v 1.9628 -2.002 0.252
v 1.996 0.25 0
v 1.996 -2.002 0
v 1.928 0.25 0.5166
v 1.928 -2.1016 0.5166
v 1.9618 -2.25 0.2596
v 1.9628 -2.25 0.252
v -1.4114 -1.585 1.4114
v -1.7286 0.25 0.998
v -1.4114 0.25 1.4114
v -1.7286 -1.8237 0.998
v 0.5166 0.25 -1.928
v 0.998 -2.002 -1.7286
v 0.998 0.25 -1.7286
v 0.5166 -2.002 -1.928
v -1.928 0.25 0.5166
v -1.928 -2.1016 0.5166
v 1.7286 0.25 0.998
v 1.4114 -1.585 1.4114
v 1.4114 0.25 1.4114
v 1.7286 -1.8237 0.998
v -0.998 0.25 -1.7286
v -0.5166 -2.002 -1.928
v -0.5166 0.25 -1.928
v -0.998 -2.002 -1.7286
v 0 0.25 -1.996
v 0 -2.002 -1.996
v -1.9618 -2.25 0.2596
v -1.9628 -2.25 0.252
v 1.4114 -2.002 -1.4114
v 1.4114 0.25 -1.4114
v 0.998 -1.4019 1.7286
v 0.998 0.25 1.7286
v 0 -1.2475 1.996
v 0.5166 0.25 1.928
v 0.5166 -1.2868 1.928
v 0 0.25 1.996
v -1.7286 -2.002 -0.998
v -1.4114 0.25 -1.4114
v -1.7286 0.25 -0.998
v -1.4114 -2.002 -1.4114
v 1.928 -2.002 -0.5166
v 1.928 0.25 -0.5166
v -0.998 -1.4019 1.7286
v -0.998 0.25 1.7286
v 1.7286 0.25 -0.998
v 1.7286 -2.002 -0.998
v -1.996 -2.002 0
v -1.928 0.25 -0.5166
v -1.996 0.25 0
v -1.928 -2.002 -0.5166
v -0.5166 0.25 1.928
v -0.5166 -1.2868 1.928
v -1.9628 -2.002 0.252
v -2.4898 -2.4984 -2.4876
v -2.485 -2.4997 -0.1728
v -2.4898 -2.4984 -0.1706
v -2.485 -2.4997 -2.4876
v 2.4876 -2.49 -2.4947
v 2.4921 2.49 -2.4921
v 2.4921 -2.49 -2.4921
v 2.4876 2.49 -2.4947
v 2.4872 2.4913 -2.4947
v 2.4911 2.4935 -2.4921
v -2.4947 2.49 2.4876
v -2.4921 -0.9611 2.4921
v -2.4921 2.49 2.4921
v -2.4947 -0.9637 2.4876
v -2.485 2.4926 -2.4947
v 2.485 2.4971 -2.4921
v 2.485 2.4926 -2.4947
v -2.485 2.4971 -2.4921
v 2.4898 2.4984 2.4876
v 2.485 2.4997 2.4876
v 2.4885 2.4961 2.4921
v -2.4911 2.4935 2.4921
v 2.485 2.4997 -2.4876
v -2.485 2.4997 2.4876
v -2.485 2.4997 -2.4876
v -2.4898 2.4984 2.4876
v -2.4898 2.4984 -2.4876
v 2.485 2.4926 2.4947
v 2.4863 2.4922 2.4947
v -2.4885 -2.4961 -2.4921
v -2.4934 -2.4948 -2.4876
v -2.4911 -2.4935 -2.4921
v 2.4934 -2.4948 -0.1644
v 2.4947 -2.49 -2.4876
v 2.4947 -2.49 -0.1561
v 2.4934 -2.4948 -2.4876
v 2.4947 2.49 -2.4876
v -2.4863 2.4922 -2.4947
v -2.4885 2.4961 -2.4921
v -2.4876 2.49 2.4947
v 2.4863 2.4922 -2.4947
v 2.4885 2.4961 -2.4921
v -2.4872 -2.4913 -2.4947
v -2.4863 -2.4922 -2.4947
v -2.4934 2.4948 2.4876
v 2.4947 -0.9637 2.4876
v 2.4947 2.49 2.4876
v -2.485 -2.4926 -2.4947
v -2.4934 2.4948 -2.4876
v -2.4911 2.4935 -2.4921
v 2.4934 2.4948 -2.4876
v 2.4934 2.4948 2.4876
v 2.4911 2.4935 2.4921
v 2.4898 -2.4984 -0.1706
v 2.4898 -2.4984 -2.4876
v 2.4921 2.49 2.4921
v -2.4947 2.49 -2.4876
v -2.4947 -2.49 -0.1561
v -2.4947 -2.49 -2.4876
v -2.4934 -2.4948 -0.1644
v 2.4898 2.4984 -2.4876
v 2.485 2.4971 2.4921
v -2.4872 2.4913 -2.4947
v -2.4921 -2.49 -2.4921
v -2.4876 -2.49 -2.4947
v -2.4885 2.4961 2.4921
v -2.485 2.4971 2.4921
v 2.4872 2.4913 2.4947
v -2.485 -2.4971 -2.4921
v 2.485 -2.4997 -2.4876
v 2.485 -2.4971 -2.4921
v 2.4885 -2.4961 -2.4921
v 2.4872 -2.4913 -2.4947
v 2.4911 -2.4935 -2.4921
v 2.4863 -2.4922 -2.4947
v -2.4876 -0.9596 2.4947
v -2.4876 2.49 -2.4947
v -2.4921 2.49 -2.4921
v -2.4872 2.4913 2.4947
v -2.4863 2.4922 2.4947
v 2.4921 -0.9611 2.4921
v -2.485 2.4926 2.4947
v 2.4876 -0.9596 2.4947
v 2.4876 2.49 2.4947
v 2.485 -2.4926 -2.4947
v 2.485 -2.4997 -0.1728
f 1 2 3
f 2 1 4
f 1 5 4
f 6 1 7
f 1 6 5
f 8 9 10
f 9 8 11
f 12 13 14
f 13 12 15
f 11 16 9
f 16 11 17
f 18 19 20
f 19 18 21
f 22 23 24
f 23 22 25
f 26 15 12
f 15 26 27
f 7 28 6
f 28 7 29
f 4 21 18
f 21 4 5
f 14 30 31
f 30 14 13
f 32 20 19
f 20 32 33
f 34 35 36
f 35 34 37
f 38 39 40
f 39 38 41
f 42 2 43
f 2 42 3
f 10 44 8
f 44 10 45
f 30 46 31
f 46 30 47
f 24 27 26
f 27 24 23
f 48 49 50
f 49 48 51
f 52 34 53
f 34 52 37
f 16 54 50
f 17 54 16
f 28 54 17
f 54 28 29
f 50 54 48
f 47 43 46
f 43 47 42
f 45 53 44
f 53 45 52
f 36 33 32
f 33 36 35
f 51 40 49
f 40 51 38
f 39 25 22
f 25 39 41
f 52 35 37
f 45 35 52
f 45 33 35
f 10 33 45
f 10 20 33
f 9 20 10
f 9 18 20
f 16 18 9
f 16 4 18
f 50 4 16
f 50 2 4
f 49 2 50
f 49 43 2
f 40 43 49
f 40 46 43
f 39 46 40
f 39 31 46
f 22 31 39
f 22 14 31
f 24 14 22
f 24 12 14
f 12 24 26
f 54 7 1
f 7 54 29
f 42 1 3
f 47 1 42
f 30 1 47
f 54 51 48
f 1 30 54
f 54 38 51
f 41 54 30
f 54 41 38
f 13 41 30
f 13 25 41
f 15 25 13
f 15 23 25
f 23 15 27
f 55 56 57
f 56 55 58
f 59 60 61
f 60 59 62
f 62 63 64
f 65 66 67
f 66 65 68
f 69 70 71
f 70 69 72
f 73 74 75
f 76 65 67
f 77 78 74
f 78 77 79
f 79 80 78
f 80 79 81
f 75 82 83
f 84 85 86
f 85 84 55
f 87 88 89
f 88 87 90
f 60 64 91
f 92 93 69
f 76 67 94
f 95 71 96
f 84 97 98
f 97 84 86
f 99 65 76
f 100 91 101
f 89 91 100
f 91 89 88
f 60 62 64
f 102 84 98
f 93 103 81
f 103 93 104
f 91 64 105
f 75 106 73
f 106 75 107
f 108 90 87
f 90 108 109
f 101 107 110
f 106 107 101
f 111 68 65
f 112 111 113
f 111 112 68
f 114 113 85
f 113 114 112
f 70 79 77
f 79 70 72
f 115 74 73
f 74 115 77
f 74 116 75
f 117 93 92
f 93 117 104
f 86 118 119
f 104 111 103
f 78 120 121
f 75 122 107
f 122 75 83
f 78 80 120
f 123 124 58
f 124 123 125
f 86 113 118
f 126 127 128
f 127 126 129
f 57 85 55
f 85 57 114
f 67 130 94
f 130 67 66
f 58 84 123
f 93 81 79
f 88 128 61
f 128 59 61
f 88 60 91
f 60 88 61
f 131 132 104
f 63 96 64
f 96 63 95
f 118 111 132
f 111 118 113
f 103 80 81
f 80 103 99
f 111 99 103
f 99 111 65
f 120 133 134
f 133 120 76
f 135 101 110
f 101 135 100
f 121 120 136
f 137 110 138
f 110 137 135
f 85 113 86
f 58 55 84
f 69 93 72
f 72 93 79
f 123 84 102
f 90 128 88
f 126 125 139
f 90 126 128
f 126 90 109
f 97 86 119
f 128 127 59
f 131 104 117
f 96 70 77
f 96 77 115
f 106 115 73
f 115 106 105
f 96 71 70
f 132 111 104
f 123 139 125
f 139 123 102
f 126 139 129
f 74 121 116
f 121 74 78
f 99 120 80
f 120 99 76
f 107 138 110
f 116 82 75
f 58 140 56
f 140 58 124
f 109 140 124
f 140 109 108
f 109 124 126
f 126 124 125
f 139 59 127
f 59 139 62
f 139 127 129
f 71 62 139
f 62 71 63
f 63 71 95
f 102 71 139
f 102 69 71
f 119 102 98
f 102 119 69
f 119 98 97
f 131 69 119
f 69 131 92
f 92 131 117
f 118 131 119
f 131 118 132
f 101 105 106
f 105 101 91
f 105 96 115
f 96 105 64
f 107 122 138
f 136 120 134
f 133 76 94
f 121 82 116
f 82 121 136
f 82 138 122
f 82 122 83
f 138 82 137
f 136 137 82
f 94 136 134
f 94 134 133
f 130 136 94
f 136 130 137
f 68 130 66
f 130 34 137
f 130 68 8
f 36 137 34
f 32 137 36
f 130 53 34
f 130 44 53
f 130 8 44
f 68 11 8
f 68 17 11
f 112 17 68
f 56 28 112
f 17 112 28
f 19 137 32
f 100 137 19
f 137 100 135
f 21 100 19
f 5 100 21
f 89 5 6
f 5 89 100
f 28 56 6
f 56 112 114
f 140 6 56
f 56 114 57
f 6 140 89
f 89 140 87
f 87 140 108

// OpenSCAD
// file: lib.scad
function x(v) = v[0];
function y(v) = v[1];
function z(v) = v[2];
function add(v1,v2) = [ for (i = [ 0 : len(v1)-1 ]) v1[i] + v2[i] ];
function xv(d) = [d,0,0];
function yv(d) = [0,d,0];
function zv(d) = [0,0,d];

module box(v) { cube(size=v, center=true); }
module cyl(r1,r2,h) { cylinder(r1=r1, r2=r2, h=h, center=true); }

function grow(n,v) = [x(v)+n*2, y(v)+n*2, z(v)+n*2];

module rbox(v, radius=1) {
	cx = x(v)/2-radius;
	cy = y(v)/2-radius;
	cz = z(v)/2-radius;

	hull() {
		translate([cx,cy,cz]) sphere(r=radius);
		translate([cx,cy,-cz]) sphere(r=radius);
		translate([cx,-cy,cz]) sphere(r=radius);
		translate([cx,-cy,-cz]) sphere(r=radius);
		translate([-cx,cy,cz]) sphere(r=radius);
		translate([-cx,cy,-cz]) sphere(r=radius);
		translate([-cx,-cy,cz]) sphere(r=radius);
		translate([-cx,-cy,-cz]) sphere(r=radius);
	}
}

module fillet(r=1) {
  minkowski() {
    difference() {
      children();
      minkowski() {
        difference() {
          minkowski() {
            children();
            sphere(r=r);
          }
          children();
        }
        sphere(r=r);
      }
    }
    sphere(r=r);
  }
}
// main file
use <lib.scad>

bounds = [4.99,5,4.99];

module chassis() {
	difference() {
		rbox(bounds, 0.01, $fn=12);
		translate([0,-y(bounds)/1.3,z(bounds)/2]) rotate([-30,0,0]) box([x(bounds)*1.1, y(bounds), z(bounds)]);
		translate([0,-y(bounds)/5,0]) difference() {
			rotate([90,0,0]) cyl(x(bounds)/2.5, x(bounds)/2.5, y(bounds)/2, $fn=24);
			translate([0,-y(bounds)/2.5,-z(bounds)/5]) box([x(bounds), x(bounds)/2.5, y(bounds)/2]);
		}
	}
}

chassis();
